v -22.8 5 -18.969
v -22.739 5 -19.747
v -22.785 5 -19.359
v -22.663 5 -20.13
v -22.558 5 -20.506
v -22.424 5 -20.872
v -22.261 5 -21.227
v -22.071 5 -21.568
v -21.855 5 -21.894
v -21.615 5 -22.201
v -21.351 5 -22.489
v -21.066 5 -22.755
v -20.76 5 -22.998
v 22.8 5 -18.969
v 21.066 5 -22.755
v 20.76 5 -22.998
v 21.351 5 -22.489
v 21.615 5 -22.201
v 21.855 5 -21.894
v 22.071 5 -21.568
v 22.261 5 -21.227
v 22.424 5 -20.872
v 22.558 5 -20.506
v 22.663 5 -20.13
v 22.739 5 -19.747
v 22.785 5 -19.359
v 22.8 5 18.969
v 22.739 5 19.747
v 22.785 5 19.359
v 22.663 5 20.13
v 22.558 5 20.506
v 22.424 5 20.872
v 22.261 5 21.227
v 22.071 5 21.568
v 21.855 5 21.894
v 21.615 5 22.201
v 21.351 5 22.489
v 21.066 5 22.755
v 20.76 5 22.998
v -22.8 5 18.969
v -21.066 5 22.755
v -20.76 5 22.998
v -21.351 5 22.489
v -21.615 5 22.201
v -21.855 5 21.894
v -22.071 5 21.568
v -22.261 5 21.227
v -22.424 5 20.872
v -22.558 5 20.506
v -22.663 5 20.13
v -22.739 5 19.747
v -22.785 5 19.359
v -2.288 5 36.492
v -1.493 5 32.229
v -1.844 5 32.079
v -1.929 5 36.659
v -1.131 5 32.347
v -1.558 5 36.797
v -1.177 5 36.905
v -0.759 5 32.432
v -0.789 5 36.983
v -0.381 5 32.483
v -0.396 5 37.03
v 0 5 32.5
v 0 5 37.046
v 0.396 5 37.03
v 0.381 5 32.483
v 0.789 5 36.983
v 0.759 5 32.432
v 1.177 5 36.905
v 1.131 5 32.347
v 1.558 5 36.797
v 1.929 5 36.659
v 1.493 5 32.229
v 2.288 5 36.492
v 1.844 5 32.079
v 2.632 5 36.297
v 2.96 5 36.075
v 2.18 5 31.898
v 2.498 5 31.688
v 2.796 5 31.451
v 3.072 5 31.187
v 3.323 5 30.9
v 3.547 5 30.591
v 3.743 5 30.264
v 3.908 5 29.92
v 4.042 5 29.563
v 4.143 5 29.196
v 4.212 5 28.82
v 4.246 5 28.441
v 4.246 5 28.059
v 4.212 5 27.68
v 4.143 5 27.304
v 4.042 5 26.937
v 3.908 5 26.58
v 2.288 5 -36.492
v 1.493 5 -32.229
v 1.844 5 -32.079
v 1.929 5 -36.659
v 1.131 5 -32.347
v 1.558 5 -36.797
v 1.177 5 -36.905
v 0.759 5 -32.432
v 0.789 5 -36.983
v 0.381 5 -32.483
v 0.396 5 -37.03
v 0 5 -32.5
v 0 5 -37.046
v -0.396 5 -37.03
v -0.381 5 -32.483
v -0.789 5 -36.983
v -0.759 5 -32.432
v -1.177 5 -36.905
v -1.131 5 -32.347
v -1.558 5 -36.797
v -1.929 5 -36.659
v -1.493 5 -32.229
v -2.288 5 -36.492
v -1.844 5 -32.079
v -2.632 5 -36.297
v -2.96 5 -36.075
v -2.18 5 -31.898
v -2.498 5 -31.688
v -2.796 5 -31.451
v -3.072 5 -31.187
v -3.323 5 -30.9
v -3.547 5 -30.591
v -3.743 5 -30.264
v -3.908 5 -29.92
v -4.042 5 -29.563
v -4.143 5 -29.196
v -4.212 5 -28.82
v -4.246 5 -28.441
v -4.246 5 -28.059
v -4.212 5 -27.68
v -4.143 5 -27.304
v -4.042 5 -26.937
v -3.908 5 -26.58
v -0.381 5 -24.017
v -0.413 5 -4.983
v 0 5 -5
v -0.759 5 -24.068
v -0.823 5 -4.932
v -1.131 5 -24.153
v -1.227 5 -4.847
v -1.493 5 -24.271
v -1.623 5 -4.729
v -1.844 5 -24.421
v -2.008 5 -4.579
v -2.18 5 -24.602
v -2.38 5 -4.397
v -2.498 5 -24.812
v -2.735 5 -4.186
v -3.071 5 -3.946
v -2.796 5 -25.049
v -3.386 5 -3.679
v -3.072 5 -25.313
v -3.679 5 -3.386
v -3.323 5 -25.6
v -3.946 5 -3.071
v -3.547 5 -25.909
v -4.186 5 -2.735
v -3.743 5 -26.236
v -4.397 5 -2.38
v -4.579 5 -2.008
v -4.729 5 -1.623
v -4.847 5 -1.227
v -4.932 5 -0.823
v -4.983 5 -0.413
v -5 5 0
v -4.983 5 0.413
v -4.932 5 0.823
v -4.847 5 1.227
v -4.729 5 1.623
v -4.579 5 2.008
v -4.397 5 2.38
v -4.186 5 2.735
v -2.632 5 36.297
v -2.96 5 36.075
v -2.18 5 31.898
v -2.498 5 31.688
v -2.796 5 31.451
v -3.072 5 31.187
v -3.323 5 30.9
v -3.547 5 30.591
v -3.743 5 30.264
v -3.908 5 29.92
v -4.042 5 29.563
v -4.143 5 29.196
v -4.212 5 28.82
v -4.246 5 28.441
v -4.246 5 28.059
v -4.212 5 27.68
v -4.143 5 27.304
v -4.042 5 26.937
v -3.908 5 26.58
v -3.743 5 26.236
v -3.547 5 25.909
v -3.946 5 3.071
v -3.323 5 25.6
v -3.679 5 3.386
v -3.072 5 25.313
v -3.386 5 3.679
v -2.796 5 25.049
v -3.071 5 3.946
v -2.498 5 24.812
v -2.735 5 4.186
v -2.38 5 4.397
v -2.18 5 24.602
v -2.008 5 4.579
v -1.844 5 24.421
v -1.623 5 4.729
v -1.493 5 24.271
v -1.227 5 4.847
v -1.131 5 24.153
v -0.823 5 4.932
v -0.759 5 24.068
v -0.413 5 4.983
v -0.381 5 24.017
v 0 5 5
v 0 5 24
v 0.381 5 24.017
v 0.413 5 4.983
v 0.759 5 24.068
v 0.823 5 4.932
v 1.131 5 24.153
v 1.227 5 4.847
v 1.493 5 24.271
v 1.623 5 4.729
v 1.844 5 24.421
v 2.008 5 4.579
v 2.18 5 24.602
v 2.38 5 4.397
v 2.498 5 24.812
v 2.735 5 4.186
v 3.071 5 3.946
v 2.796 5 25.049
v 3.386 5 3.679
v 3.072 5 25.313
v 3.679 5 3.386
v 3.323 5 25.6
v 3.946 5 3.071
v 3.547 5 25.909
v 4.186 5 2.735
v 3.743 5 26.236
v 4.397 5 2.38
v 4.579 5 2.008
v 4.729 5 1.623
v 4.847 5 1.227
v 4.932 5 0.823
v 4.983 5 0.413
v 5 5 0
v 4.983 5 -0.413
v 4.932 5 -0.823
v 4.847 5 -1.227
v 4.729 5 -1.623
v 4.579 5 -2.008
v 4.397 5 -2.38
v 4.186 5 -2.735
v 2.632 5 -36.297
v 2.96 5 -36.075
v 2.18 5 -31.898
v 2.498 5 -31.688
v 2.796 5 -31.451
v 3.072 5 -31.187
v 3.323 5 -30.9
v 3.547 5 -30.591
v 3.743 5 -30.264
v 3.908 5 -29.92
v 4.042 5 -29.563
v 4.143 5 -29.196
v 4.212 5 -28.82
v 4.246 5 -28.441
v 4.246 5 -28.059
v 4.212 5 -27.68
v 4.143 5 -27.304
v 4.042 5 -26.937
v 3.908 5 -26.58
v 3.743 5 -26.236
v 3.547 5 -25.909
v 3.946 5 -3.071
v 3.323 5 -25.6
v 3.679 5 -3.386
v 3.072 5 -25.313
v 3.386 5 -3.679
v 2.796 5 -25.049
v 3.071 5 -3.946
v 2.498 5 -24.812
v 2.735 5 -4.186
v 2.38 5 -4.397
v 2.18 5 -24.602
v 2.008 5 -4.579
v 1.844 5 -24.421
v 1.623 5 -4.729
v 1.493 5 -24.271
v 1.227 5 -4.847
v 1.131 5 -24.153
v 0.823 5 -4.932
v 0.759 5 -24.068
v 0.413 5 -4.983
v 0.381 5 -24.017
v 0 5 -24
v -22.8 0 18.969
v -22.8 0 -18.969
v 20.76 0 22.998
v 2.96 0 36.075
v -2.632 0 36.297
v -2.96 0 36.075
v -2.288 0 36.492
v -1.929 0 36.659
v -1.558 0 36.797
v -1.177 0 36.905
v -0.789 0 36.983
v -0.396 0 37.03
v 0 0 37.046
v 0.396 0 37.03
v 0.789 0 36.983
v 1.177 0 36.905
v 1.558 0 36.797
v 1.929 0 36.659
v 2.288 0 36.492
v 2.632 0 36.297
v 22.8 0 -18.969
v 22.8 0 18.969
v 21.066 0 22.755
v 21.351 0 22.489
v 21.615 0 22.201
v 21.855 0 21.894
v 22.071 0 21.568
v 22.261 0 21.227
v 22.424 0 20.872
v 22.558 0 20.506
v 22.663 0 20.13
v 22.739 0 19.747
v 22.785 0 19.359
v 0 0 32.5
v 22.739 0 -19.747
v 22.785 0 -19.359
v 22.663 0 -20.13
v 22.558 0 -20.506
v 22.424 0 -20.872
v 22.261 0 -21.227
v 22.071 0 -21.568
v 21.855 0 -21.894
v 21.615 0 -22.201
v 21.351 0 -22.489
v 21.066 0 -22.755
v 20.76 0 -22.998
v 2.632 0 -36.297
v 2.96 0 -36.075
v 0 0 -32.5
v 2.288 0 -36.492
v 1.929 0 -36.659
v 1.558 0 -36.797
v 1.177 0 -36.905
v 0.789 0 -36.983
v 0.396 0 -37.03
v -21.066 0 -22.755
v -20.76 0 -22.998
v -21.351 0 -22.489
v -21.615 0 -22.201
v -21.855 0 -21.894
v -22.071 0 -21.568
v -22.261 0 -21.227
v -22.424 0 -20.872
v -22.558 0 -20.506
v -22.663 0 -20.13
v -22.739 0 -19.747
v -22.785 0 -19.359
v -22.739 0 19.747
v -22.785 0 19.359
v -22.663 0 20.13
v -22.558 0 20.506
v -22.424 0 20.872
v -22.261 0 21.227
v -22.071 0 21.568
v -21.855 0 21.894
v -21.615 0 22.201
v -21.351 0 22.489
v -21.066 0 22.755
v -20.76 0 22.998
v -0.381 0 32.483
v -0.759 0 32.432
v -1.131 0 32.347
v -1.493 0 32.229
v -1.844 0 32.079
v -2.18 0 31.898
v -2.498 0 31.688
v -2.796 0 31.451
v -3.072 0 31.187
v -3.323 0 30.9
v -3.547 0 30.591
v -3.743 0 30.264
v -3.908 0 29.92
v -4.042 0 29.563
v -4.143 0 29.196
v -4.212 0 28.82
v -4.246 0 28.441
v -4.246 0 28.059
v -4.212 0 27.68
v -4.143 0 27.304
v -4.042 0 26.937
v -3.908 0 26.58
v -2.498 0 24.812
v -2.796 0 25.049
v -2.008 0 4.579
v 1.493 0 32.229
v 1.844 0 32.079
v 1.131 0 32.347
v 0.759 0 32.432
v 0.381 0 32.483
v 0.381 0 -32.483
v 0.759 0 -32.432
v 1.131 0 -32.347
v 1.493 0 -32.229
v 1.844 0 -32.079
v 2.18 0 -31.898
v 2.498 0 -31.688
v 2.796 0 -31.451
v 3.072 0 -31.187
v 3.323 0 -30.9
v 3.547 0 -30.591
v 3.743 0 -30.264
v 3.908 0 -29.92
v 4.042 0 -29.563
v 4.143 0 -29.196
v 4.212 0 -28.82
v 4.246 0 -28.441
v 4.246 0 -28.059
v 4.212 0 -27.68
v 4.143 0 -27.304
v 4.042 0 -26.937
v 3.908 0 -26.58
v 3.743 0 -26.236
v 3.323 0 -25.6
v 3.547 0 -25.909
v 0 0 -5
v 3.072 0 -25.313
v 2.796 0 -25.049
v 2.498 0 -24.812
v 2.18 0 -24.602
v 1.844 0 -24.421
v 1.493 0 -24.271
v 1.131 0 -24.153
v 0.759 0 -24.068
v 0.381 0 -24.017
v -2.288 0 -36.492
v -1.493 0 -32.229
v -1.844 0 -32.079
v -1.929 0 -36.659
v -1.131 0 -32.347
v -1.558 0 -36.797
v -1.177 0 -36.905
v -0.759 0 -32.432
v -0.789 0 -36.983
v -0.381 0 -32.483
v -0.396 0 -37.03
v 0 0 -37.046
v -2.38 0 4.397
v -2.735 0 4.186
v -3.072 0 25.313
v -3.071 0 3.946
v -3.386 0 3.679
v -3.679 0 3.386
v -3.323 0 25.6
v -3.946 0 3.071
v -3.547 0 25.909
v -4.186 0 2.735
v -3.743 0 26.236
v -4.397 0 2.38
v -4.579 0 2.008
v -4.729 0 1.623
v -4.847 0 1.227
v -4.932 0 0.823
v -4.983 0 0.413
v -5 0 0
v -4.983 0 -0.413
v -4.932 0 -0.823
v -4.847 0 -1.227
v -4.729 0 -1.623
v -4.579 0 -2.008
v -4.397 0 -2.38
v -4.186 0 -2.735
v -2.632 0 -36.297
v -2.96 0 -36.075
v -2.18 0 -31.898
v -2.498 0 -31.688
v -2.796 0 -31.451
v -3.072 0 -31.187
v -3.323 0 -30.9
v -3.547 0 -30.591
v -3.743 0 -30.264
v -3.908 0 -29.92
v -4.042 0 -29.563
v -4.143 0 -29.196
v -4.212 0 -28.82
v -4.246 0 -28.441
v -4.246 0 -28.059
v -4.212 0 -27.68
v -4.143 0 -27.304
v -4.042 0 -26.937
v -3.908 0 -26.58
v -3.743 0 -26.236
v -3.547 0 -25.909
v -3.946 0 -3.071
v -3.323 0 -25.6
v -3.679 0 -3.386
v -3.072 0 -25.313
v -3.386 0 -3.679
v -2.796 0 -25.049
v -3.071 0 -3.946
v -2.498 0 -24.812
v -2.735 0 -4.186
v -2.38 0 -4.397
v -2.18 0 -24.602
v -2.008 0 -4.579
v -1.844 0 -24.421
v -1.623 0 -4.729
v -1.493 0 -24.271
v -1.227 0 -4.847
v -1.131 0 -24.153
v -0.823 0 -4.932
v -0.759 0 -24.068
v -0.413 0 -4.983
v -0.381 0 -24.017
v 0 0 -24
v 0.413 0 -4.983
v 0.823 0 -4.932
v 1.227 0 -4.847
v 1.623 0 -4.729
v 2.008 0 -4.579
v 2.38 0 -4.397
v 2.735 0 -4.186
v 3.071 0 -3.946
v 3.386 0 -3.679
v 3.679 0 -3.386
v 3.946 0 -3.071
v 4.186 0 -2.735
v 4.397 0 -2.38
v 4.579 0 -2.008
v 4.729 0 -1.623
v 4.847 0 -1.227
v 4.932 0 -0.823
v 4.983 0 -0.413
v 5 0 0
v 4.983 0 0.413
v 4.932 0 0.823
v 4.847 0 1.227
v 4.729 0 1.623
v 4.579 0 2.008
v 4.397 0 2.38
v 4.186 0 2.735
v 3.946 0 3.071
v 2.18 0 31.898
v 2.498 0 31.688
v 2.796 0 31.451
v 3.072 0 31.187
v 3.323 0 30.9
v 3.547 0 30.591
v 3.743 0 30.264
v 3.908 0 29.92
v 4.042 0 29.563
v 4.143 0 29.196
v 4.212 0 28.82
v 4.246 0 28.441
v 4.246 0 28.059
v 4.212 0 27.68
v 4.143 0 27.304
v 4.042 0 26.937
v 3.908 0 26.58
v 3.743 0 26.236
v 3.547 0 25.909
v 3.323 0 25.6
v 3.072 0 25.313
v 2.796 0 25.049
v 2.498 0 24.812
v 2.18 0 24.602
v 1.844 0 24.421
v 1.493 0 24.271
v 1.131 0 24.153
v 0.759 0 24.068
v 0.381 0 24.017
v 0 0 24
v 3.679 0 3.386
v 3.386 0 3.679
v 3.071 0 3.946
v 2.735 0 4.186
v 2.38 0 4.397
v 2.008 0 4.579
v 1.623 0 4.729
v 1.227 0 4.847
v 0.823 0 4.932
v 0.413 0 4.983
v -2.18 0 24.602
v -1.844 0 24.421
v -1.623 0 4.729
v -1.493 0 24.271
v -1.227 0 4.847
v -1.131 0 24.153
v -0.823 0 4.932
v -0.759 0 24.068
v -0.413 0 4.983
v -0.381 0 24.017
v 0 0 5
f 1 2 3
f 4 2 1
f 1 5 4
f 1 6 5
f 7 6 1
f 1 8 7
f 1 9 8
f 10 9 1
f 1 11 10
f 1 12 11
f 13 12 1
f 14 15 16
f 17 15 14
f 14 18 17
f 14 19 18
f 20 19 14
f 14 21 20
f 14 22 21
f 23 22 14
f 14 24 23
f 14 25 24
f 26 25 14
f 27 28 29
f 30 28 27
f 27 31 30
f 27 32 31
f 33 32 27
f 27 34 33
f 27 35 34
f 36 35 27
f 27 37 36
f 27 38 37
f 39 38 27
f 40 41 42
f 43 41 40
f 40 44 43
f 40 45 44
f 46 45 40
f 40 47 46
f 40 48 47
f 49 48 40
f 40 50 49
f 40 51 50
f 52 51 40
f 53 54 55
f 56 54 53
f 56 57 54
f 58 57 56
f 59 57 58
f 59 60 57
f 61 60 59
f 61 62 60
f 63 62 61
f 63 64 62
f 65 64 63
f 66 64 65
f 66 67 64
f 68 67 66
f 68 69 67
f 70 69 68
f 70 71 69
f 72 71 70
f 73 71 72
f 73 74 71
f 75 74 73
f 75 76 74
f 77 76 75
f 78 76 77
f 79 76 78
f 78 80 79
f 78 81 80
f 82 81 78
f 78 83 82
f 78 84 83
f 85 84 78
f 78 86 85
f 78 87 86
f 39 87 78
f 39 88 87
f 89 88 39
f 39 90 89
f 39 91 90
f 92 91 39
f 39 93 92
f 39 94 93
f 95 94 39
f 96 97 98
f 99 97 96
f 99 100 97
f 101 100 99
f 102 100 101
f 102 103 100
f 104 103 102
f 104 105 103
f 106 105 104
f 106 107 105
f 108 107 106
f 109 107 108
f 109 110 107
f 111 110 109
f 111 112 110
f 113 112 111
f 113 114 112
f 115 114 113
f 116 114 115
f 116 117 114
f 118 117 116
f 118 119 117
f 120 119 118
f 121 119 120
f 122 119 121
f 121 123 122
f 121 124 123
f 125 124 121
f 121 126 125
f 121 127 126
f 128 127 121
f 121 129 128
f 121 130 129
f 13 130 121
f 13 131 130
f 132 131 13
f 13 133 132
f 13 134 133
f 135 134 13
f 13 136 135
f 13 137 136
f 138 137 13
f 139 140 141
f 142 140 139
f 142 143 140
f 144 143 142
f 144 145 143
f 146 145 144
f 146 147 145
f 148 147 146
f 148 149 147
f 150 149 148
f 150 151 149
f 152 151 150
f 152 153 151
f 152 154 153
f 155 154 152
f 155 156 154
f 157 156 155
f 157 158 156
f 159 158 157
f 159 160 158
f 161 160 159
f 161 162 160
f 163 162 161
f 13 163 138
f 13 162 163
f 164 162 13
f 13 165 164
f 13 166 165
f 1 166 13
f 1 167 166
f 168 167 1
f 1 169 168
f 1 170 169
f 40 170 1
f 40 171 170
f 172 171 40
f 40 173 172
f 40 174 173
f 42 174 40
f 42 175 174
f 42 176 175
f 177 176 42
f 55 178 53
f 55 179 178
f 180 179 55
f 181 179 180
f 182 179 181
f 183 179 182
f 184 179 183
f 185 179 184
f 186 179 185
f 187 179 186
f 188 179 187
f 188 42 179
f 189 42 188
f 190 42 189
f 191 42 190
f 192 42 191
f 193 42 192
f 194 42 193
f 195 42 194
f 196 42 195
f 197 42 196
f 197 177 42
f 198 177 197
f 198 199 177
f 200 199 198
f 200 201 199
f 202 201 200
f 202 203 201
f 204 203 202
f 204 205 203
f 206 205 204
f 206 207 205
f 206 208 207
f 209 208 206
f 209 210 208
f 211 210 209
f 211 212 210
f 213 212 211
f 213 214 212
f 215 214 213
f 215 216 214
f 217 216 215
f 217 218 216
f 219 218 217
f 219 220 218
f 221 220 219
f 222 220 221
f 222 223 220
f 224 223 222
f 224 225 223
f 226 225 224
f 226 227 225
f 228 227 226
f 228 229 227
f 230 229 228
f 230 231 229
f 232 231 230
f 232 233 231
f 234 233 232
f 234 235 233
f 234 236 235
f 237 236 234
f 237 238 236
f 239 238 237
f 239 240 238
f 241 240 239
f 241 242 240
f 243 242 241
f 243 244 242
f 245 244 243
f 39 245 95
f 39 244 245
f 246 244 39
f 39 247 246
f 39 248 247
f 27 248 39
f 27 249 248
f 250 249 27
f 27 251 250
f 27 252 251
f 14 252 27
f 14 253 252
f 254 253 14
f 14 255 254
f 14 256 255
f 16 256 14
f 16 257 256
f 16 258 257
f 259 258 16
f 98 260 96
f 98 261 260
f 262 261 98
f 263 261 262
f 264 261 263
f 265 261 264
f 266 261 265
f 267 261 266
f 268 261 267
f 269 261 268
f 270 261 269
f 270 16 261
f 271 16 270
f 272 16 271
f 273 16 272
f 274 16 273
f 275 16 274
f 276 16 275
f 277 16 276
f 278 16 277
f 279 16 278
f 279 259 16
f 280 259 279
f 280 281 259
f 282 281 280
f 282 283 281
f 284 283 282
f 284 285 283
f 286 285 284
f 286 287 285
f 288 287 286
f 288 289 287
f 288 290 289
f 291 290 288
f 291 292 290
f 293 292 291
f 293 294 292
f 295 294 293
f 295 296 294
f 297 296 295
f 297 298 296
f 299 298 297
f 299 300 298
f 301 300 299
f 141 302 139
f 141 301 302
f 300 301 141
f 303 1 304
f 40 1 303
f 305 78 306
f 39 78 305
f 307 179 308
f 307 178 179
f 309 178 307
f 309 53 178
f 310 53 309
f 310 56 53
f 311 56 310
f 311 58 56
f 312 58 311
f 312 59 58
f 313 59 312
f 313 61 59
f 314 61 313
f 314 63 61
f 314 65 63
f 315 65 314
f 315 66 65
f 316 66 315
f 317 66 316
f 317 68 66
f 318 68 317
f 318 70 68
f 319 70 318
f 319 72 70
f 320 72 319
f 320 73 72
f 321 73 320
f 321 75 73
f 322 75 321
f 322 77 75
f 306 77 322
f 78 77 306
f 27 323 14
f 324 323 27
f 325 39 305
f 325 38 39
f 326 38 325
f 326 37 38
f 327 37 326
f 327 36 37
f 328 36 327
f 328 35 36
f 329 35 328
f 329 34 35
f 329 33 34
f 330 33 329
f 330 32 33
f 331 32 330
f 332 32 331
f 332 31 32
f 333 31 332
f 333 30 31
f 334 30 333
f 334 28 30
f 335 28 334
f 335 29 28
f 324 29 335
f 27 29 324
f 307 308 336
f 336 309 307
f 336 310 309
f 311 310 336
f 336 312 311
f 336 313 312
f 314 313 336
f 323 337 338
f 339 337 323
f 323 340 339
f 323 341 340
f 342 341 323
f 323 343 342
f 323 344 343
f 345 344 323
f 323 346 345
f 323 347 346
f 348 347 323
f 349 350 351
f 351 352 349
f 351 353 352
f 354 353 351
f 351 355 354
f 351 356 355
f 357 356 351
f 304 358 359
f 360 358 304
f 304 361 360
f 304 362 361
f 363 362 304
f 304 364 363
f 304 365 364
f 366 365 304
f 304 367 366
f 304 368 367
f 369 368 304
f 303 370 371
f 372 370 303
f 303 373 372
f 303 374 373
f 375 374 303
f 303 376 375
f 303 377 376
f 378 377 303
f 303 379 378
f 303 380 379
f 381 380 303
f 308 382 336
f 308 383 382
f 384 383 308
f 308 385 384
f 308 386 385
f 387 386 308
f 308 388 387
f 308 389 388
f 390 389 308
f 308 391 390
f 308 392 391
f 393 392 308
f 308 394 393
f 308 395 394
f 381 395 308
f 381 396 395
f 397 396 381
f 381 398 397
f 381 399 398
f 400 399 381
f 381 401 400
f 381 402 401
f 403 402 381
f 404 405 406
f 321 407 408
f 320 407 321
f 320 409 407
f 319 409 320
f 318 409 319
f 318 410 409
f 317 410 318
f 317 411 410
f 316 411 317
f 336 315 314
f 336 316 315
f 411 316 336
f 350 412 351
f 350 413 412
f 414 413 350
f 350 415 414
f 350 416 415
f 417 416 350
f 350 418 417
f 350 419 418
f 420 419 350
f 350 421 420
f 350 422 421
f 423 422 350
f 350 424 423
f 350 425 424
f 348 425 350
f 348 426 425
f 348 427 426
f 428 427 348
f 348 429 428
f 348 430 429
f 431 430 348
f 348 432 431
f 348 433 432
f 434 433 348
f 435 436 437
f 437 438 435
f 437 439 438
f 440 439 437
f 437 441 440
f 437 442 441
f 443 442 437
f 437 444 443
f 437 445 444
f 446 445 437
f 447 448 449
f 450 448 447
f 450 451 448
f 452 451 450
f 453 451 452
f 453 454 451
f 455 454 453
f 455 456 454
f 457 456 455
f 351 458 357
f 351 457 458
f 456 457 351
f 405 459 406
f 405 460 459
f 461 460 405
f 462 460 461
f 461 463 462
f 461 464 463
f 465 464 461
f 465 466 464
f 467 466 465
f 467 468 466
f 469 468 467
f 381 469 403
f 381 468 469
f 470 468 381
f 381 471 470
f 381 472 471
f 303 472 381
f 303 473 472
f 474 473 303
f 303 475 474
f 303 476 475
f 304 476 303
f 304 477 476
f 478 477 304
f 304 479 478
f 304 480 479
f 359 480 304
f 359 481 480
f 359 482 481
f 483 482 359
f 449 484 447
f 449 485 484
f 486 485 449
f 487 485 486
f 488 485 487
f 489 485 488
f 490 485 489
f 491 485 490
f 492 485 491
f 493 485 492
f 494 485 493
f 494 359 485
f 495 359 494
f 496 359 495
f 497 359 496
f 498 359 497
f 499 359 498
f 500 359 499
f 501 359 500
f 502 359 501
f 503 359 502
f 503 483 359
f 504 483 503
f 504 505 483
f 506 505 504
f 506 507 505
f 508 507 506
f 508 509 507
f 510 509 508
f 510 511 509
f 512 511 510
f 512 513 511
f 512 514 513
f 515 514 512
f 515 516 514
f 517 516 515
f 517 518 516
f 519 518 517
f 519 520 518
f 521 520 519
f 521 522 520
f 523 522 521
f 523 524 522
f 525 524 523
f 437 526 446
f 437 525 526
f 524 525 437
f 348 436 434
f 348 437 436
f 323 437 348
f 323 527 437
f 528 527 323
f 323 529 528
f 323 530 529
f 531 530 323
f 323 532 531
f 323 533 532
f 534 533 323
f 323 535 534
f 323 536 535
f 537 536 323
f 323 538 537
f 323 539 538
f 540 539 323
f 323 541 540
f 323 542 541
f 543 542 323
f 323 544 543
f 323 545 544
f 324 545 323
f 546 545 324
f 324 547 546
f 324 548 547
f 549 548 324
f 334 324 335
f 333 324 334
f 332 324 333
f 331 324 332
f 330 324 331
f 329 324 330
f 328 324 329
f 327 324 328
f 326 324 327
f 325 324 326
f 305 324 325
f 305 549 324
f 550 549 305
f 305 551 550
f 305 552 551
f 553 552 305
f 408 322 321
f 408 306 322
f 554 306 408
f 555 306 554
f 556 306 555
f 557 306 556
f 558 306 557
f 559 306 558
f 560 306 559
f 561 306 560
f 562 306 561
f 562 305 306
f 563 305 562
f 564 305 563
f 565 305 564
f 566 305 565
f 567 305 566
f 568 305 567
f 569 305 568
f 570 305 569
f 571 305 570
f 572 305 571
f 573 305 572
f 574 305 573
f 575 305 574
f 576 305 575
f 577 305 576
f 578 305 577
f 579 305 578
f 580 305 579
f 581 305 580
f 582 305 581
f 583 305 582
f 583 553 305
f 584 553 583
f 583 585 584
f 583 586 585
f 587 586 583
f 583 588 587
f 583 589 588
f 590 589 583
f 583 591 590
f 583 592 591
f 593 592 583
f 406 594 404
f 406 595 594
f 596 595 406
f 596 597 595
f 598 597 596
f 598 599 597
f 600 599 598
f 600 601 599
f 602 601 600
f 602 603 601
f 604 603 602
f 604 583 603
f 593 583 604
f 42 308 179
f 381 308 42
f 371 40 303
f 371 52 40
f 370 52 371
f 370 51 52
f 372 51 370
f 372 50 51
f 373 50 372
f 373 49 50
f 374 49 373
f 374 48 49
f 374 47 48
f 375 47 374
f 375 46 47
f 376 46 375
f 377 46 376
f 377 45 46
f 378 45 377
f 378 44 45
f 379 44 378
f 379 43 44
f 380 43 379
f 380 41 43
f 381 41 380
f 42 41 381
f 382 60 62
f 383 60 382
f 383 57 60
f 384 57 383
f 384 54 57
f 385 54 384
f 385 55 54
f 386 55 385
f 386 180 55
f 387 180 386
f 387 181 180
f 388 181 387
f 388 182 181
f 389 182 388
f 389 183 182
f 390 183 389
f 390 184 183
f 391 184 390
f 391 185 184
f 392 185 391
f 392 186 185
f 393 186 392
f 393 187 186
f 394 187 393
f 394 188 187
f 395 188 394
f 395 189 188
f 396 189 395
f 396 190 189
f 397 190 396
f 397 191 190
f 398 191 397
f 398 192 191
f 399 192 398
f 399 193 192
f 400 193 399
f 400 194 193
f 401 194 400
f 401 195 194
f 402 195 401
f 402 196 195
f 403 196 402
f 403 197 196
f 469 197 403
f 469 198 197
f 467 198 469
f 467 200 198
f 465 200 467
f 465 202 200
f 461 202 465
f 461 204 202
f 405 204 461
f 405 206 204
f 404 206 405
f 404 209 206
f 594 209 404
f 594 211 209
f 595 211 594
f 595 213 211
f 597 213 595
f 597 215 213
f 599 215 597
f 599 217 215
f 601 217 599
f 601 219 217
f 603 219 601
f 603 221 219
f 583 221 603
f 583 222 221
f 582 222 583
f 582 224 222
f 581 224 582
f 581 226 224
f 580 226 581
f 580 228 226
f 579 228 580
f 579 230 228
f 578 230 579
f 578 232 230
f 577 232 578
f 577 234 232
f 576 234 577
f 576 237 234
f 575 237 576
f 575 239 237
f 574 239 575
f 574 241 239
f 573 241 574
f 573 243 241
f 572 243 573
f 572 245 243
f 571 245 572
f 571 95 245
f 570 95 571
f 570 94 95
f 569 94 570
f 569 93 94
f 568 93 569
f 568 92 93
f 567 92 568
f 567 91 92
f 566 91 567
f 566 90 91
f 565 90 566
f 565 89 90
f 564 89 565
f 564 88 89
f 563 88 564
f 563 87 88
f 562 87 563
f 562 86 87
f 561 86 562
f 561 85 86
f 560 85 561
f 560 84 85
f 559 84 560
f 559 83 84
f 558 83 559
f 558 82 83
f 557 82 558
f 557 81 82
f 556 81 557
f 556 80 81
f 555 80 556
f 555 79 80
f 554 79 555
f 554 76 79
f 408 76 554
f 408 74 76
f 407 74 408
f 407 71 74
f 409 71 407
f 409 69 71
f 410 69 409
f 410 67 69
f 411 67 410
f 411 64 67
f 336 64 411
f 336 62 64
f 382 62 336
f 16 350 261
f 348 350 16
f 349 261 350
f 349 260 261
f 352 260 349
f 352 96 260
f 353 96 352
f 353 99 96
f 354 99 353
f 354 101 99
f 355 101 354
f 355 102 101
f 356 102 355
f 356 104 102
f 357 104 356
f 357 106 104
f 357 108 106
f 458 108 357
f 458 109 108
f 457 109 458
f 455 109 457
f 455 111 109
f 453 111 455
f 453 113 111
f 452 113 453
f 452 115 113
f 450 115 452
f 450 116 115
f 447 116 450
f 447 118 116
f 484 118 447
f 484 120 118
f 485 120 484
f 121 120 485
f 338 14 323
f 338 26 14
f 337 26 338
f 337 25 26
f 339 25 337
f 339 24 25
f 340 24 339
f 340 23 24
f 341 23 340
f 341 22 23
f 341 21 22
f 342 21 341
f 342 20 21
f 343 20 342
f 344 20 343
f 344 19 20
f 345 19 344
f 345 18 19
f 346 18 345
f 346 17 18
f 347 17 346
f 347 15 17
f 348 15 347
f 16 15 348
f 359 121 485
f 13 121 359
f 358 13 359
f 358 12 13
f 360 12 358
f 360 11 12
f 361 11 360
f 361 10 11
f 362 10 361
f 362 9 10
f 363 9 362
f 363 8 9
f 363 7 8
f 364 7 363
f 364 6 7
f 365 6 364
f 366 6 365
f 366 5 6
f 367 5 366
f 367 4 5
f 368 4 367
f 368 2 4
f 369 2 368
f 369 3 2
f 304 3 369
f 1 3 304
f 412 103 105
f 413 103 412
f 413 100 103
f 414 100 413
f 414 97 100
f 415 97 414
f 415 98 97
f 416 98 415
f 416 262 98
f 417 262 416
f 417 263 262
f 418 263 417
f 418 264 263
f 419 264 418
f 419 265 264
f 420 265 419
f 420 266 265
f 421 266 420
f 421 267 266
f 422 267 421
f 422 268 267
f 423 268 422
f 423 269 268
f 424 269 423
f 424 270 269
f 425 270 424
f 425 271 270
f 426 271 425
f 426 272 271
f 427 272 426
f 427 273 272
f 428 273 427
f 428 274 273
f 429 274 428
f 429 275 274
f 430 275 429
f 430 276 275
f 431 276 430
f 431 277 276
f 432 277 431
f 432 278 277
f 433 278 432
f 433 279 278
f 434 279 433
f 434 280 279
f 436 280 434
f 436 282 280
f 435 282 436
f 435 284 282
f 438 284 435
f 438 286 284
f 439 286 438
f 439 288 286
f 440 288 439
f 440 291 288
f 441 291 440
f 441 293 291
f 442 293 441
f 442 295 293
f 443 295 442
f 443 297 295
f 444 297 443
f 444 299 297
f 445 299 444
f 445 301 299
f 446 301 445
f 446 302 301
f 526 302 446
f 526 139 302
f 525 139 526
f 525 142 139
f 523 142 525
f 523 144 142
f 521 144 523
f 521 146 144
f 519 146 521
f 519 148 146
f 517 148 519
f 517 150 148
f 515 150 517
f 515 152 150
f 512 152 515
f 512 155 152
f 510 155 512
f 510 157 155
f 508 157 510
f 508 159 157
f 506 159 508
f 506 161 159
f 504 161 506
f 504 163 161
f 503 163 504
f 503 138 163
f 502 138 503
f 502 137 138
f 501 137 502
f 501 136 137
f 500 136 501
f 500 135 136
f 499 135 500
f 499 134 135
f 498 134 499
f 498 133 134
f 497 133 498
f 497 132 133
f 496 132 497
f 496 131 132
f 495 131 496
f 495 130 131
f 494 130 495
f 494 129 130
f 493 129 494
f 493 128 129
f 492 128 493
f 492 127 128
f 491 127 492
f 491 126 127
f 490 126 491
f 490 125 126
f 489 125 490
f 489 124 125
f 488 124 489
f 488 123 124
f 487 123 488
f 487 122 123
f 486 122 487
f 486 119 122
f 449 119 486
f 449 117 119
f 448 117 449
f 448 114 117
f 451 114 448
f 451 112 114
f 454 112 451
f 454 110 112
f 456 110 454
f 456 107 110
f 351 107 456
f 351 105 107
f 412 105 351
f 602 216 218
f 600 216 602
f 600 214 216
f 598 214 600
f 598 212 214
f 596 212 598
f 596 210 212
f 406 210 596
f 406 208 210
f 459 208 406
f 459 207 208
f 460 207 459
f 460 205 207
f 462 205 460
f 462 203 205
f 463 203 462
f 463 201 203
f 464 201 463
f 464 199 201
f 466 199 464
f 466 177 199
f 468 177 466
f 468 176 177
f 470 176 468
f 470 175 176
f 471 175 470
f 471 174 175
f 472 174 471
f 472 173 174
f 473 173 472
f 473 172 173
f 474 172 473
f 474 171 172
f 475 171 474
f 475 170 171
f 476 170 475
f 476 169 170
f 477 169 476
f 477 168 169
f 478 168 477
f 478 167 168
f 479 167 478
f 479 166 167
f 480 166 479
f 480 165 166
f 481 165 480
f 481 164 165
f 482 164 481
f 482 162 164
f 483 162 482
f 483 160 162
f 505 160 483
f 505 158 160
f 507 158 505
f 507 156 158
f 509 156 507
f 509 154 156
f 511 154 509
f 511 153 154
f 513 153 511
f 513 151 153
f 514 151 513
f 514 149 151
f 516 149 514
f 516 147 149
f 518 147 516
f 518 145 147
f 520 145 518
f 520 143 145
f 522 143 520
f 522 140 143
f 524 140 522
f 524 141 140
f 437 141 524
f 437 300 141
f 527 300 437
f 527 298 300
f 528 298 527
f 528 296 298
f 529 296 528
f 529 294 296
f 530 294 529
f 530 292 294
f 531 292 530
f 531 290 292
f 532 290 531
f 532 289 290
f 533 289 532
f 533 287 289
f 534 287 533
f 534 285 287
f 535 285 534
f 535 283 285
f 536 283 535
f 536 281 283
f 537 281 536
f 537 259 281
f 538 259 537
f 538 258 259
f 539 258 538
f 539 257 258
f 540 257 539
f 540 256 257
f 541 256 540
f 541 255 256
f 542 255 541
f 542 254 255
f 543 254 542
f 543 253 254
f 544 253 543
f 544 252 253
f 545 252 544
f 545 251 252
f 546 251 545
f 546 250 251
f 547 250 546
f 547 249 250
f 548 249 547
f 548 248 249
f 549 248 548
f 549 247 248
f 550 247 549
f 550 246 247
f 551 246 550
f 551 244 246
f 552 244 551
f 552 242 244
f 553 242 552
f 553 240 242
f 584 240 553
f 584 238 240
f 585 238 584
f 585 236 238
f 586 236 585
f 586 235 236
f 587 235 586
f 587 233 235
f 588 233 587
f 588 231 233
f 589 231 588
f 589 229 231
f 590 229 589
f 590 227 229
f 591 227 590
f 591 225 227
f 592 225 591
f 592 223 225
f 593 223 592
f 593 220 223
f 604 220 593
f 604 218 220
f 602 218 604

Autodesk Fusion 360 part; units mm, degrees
sketch "Plate" plane through (0, 0, 0) normal (0, 1, 0) x (1, 0, 0) in component "Plate"
  line L0 (0, 0) -> (-22.8, 0)
  line L1 (-22.8, 0) -> (-22.8, 21.5)
  line L2 (-22.8, 21.5) -> (0, 38.25)
  line L3 (0, -20) -> (0, -2.5)
  line L4 (2.5, 0) -> (20, 0)
  line L5 (22.8, 21.5) -> (0, 38.25)
  line L6 (22.8, 0) -> (22.8, 21.5)
  line L7 (0, 0) -> (22.8, 0)
  point P0 (0, 38.25)
  dimension "d2" = 22.8
  dimension "d41" = 21.5
  dimension "d42" = 38.25
  dimension "d83" = 0
  dimension "d84" = 0
  dimension "d85" = 0
  dimension "d86" = 0
extrude "Extrude1" add sketch "Plate" along normal blind 5 makes body 1 in component "Plate"
fillet "Fillet3" radius 5 1 edges at (0, 2.5, -38.25) on bodies 1 in component "Plate"
fillet "Fillet4" radius 5 1 edges at (-22.8, 2.5, -21.5) on bodies 1 in component "Plate"
fillet "Fillet5" radius 5 1 edges at (22.8, 2.5, -21.5) on bodies 1 in component "Plate"
hole "Hole1" at (0, 5, -28.25) direction (0, -1, 0) diameter 8.5 end through all bodies 1 1 in component "Plate"
mirror "Mirror1" about plane through (0, 0, 0) normal (0, 0, 1) of bodies 1 makes body 2 in component "Plate"
combine "Combine1" operation add target body 1 tool bodies 2 in component "Plate"
hole "Hole1'" at (0, 5, 0) direction (0, -1, 0) diameter 10 end through all bodies 1 1 in component "Plate"
component "Plate" placed x (1, 0, 0) y (0, 1, 0) z (0, 0, 1) at (0, 0, 0)
